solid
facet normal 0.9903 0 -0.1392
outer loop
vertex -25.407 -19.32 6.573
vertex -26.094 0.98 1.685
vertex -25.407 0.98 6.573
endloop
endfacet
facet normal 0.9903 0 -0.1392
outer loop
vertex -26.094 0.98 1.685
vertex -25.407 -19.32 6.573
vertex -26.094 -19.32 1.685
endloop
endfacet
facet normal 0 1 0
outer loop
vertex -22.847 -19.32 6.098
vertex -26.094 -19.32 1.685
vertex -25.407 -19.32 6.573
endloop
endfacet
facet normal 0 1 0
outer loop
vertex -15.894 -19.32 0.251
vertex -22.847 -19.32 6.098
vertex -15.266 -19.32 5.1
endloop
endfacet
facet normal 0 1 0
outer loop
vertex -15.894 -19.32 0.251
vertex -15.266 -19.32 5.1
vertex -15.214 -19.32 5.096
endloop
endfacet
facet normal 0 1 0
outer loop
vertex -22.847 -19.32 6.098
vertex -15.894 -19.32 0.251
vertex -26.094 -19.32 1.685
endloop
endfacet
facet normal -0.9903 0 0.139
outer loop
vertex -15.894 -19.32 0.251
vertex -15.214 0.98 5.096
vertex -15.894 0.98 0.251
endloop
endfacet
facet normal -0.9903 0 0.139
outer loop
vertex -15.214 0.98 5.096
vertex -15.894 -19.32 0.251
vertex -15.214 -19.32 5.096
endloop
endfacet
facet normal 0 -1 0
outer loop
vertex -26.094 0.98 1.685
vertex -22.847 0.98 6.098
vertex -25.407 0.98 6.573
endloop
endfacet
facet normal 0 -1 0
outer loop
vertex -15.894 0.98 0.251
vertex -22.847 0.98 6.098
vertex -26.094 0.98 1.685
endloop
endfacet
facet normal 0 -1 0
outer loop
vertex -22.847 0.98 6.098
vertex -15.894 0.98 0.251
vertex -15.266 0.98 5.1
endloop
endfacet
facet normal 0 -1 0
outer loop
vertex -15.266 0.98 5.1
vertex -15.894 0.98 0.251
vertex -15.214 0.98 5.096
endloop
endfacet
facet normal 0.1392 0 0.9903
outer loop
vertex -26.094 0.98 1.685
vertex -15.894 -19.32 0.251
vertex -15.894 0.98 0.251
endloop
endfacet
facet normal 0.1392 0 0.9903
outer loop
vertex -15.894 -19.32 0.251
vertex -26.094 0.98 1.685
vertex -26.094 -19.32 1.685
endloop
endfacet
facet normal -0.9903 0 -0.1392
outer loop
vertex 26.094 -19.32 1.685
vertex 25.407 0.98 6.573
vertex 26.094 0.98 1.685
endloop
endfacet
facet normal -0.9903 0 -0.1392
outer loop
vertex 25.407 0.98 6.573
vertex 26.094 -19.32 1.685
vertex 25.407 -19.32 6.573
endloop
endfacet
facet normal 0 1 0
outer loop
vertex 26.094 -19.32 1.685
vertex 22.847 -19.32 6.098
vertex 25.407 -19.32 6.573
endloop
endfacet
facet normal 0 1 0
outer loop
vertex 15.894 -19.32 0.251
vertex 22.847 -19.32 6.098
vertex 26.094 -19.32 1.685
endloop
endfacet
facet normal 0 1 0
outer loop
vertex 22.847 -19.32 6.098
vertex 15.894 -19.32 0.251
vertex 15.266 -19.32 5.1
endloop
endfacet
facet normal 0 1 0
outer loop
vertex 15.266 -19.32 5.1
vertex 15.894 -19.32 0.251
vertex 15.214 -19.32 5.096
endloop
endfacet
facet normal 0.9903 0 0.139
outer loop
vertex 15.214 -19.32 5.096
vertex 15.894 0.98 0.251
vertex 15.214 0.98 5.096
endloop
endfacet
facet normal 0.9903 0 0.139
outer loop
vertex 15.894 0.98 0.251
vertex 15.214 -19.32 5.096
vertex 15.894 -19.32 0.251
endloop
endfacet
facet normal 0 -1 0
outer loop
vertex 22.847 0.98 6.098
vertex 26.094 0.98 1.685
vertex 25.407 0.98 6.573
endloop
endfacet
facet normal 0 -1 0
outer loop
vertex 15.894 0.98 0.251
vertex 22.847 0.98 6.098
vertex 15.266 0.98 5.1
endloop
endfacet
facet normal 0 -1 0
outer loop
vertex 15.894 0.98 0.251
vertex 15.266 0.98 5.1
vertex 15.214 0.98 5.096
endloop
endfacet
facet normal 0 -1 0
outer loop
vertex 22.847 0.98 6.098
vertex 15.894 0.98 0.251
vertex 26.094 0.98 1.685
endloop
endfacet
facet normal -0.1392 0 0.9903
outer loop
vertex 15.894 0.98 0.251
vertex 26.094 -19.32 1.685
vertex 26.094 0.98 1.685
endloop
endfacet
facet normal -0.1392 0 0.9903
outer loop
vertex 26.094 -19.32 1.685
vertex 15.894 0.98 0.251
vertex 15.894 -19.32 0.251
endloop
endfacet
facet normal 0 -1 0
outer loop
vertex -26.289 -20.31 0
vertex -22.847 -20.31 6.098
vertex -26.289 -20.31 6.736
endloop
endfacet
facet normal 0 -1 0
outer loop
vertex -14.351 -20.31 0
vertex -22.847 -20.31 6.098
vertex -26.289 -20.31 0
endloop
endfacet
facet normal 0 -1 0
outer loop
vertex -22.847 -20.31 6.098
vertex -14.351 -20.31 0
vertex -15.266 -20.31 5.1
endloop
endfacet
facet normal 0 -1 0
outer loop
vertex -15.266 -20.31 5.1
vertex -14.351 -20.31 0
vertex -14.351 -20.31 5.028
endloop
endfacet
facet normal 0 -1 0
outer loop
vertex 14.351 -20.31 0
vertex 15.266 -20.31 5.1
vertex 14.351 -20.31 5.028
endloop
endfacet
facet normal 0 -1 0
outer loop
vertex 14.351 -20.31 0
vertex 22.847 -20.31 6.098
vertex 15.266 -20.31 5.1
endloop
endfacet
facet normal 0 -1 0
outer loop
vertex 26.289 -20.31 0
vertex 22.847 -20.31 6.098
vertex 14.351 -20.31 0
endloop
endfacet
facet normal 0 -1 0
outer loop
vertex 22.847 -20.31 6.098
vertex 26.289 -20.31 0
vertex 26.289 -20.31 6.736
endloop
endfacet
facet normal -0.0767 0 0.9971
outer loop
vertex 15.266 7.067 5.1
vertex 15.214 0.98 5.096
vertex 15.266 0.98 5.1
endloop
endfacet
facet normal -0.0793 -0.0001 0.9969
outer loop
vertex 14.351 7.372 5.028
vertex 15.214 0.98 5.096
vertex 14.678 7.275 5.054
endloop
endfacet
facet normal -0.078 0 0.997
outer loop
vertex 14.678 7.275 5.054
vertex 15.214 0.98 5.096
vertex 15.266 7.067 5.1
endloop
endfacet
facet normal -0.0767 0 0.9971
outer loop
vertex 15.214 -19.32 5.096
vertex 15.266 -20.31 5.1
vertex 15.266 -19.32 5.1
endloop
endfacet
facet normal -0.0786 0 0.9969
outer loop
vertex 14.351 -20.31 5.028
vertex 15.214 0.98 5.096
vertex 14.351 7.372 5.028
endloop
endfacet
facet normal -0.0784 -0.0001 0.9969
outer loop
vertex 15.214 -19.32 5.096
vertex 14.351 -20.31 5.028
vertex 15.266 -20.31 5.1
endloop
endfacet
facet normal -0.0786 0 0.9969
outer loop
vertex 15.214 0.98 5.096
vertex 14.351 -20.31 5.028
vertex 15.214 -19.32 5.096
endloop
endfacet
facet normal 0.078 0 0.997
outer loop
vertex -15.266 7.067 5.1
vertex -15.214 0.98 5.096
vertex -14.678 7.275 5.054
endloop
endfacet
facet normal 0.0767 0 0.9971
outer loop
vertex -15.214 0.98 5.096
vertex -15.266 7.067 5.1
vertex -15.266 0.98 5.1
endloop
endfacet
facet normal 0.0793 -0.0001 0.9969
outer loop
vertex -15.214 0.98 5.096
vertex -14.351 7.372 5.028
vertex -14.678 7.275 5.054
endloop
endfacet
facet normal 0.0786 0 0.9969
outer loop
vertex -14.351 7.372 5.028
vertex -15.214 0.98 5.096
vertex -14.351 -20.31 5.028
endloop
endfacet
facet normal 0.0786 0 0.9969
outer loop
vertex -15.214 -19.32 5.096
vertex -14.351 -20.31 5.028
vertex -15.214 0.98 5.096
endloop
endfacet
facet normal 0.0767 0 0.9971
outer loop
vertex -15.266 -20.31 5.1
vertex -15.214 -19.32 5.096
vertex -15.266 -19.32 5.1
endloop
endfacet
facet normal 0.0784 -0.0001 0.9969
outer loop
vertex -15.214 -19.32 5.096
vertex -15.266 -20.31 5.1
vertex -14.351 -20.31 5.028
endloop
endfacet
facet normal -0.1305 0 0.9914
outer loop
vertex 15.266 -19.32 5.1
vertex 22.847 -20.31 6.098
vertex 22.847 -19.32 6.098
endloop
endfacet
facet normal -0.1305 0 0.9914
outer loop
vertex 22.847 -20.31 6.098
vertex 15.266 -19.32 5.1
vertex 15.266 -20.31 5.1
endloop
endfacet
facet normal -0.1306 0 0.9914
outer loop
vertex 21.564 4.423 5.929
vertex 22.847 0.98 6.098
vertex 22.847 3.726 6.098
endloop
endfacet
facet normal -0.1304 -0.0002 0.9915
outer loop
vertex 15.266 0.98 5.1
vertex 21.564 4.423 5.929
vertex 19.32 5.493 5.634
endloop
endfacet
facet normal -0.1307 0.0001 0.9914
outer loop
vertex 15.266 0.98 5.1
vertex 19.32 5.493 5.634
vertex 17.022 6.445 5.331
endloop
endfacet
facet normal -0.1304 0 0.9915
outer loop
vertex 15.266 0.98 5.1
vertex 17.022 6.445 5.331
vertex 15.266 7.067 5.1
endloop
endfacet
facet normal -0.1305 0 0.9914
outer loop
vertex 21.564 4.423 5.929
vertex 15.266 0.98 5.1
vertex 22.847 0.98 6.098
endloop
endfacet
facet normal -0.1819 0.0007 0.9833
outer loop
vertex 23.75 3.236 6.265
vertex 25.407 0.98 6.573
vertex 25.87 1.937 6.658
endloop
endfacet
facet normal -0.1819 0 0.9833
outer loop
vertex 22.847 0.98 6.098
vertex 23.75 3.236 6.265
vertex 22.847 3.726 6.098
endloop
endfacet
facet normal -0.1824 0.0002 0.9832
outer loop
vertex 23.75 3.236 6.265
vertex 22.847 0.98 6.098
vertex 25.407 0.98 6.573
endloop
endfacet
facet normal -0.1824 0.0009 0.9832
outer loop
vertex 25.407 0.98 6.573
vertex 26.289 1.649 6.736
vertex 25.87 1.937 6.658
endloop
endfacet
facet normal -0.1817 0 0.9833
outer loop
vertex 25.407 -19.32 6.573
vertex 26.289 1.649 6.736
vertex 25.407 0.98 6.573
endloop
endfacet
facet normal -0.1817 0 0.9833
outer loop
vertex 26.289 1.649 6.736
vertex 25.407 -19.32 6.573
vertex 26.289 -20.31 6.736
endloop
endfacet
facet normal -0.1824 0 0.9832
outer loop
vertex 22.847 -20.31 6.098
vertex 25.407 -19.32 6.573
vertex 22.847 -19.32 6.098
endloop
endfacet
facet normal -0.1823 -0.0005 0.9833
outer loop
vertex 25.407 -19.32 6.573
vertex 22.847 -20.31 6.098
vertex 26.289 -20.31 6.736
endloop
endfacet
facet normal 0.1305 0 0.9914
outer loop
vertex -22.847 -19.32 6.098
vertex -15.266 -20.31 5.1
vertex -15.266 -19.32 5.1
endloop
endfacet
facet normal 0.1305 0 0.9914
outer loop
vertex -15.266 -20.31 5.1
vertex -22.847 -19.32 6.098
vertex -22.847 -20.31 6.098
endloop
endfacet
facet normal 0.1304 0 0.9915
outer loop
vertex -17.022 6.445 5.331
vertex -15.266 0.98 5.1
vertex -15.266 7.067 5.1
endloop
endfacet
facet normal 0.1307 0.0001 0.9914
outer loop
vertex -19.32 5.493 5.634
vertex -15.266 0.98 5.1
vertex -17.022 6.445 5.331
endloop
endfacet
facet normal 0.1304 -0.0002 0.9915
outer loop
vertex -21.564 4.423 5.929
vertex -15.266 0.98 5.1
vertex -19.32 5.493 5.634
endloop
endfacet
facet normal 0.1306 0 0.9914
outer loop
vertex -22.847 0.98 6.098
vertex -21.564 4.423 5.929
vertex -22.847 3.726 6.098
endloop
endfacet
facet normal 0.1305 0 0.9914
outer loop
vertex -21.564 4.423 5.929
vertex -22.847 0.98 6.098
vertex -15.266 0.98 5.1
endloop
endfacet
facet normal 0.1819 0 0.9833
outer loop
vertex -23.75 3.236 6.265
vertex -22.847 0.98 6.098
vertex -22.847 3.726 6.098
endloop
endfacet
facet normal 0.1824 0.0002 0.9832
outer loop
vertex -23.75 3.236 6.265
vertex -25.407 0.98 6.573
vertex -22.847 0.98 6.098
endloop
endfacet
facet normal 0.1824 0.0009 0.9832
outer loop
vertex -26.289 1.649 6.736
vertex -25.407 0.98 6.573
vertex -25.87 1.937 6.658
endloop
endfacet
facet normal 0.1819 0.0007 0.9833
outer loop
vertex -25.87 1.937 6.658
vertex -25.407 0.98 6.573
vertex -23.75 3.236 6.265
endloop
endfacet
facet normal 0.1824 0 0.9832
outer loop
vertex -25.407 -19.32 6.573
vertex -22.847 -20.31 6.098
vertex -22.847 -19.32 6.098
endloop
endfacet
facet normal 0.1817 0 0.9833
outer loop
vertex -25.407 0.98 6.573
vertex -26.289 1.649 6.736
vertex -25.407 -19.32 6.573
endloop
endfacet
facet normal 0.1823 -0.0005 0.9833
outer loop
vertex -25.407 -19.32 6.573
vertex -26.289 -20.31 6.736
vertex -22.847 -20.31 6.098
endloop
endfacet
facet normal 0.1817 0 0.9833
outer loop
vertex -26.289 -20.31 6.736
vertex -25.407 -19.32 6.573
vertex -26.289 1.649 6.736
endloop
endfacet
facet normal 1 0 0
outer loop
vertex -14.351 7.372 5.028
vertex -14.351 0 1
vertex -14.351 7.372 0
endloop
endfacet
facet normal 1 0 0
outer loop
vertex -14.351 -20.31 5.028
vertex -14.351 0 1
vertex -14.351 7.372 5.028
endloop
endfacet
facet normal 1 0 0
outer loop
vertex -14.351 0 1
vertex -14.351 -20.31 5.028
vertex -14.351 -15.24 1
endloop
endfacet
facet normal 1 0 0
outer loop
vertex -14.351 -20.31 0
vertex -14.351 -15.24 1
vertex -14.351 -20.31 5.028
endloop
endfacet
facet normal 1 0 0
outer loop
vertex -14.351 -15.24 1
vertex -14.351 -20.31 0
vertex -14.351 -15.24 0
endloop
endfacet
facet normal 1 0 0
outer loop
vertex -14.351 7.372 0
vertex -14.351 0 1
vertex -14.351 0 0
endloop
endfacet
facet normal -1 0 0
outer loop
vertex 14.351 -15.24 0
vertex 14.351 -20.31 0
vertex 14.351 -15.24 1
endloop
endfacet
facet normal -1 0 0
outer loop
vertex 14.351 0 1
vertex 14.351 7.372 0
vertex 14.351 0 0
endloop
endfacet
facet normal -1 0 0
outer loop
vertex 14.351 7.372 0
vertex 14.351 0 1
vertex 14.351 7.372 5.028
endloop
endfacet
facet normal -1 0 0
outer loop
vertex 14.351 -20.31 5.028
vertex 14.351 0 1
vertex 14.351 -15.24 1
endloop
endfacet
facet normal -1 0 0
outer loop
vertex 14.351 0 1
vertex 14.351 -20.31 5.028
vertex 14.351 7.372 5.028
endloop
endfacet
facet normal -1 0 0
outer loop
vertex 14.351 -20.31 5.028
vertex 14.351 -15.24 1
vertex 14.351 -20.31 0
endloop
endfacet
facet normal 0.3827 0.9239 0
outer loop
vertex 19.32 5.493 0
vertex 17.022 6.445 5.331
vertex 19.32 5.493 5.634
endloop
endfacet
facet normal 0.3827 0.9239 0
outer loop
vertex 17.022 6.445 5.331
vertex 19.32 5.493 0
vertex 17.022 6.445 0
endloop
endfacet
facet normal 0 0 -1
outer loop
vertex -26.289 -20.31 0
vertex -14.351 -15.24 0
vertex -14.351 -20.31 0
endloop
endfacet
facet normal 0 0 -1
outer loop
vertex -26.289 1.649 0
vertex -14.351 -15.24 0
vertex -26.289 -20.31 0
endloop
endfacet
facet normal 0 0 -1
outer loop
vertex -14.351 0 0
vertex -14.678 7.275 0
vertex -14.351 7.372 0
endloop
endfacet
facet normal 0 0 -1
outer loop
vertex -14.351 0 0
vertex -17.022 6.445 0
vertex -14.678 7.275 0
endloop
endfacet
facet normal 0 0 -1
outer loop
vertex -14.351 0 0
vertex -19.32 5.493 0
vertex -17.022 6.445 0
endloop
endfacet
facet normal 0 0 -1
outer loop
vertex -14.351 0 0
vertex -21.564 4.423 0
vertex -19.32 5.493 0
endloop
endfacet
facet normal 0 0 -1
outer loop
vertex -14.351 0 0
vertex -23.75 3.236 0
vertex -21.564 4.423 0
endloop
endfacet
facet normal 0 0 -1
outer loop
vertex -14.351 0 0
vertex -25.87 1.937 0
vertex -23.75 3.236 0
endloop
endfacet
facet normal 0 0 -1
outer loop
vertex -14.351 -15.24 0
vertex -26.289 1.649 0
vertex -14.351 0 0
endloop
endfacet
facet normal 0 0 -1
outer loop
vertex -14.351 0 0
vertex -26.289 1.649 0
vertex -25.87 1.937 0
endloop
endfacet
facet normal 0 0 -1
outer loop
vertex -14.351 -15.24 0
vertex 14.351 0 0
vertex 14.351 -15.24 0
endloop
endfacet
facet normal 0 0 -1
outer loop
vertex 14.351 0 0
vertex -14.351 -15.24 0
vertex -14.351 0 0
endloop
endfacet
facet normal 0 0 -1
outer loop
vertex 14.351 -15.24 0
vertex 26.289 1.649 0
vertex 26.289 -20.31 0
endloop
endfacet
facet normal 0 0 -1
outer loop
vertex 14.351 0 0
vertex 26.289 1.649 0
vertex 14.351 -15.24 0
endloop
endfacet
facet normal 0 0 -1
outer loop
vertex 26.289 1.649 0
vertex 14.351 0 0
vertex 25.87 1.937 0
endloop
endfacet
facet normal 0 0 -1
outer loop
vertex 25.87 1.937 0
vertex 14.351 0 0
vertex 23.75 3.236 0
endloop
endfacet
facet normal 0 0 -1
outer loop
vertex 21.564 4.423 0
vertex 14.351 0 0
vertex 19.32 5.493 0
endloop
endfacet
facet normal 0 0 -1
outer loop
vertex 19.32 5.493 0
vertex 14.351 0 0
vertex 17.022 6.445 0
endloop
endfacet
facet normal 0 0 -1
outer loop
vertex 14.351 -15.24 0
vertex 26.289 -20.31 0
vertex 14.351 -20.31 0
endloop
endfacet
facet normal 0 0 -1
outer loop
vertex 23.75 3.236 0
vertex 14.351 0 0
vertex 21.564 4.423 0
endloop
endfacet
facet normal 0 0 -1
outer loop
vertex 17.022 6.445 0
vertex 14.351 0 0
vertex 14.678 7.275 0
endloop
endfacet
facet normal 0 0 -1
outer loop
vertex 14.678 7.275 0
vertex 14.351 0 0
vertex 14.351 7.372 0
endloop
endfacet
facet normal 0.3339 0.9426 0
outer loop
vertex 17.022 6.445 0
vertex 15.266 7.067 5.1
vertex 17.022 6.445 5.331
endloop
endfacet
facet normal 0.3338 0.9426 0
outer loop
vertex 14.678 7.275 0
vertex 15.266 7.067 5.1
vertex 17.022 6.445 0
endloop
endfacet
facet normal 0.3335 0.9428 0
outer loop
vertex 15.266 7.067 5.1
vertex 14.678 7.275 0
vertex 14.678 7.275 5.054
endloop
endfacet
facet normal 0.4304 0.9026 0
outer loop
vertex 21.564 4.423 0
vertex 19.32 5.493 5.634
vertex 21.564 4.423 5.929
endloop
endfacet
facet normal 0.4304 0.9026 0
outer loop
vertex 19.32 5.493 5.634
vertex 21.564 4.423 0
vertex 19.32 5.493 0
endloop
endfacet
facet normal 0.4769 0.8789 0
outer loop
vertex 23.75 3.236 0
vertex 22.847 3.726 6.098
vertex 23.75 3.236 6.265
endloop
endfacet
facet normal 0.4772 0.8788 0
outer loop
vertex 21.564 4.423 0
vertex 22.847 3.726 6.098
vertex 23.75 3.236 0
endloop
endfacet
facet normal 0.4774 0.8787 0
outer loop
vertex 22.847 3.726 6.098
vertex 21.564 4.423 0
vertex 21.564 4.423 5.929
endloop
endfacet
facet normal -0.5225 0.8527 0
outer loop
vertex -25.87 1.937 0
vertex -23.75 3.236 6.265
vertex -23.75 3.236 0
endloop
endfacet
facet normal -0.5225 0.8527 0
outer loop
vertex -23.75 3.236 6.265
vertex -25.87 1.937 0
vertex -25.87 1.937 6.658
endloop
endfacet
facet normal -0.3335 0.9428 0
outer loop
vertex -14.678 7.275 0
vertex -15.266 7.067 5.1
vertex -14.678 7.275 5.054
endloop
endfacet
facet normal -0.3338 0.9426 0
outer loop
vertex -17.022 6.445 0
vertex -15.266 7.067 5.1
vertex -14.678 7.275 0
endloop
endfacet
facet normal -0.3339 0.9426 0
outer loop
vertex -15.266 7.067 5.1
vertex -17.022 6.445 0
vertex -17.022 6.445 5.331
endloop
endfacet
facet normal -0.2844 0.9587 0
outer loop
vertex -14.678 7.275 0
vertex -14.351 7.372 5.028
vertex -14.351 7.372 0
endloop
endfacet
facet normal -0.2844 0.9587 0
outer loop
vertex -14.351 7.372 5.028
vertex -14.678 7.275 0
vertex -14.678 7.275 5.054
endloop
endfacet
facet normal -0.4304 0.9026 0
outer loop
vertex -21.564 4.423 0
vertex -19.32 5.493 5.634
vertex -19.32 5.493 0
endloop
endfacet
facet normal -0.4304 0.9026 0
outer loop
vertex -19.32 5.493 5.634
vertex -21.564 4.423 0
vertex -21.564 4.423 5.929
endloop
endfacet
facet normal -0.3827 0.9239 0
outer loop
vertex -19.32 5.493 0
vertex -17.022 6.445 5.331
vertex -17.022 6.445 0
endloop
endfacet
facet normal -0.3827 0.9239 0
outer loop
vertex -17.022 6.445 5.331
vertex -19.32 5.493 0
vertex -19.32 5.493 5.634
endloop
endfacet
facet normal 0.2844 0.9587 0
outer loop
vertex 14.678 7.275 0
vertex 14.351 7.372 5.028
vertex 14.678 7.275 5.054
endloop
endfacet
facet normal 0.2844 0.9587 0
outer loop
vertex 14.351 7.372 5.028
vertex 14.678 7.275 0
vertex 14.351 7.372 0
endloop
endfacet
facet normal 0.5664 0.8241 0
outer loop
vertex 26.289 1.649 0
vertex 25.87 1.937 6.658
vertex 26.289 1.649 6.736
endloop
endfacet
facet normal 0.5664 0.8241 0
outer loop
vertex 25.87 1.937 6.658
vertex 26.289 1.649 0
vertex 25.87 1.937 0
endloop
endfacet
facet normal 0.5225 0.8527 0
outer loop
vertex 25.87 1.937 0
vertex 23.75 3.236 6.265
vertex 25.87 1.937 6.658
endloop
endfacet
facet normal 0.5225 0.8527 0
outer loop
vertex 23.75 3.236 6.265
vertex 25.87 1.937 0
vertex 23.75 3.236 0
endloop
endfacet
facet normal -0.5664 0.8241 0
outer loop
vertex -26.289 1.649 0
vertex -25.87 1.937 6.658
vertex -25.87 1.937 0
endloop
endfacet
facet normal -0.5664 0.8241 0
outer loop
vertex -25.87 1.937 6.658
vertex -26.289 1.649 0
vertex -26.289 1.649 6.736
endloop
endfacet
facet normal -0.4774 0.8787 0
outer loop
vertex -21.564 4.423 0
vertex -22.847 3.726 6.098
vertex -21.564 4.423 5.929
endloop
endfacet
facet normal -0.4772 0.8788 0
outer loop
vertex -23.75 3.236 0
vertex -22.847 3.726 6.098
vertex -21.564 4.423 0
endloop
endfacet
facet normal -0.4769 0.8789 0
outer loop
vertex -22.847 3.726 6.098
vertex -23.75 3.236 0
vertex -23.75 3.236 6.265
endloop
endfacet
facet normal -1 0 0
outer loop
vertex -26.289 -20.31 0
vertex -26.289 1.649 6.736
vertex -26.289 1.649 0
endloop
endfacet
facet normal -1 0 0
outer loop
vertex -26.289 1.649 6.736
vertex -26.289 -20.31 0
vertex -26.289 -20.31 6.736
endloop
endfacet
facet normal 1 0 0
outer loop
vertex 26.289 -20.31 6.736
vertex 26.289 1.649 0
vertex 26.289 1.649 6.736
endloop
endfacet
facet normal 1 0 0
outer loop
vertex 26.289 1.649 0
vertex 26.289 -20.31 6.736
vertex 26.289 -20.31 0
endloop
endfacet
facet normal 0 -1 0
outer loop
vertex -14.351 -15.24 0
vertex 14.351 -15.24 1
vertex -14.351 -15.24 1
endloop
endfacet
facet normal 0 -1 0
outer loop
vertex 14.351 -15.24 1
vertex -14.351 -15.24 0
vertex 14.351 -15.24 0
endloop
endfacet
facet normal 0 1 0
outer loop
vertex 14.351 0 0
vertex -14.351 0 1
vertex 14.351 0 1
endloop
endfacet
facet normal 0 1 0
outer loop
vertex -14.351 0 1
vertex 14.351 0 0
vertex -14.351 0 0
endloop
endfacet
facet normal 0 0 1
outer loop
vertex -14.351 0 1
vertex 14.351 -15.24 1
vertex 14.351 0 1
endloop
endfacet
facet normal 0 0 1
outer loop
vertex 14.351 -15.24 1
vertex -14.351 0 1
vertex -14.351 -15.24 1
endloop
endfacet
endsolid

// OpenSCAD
mm=1;
in=25.4*mm;

can_rad = 11.5*in/2;
can_h = 1.55*in;


yogurt_lid_rad=95*mm/2;
yogurt_lid_rim=10.65*mm - 1.2*mm;
yogurt_lid_rim_inset = 4.3*mm;
depth = 0.5*in;
eps=0.01*mm;

slop = 0.3*mm;
magnet_x = 10*mm+slop; // made-up number
magnet_y = 5*mm+slop; // made-up number
magnet_z = 20*mm+slop; //made-up number
magnet_fudge = 0.5*mm;
magnet_z_lower=1*mm;

cutout_x=1.13*in;
bb_x = 2.07*in;
bb_y = 12*in;
bb_z = 5*in;

bridge_x=cutout_x + eps;
bridge_y = 1*mm;
bridge_z = 0.6*in;
bridge_lift = 0.75*in;

rotate([90,0,0])
translate([0,can_rad+yogurt_lid_rim_inset,-bridge_lift])
union(){
    intersection(){
        color("green")
        cube([bb_x,bb_y,bb_z], center=true);
        difference(){
            union(){
                translate([0,-can_rad+depth-yogurt_lid_rim_inset,yogurt_lid_rim])
                rotate([90,0,0])
                translate([0,yogurt_lid_rad,0])
                cylinder(r=yogurt_lid_rad,h=depth,$fn=120);
            }
            union(){
                translate([0,0,can_h-eps])
                cylinder(r=can_rad+depth, h=2*yogurt_lid_rad);
                
                color("gray")
                cylinder(r=can_rad, h=can_h, $fn=120);
                color("red")
                for(side=([-1,1])) {
                    rotate([0,0,side*8])
                    translate([-magnet_x/2,-can_rad-magnet_y+magnet_fudge,can_h-magnet_z-magnet_z_lower])
                    cube([magnet_x,magnet_y,magnet_z]);  
                }
                
                cube([cutout_x,bb_y,bb_z],center=true);
    
            }
        }
    }
    translate([-bridge_x/2, -can_rad-yogurt_lid_rim_inset, bridge_lift])
    cube([bridge_x,bridge_y,bridge_z]);
}
